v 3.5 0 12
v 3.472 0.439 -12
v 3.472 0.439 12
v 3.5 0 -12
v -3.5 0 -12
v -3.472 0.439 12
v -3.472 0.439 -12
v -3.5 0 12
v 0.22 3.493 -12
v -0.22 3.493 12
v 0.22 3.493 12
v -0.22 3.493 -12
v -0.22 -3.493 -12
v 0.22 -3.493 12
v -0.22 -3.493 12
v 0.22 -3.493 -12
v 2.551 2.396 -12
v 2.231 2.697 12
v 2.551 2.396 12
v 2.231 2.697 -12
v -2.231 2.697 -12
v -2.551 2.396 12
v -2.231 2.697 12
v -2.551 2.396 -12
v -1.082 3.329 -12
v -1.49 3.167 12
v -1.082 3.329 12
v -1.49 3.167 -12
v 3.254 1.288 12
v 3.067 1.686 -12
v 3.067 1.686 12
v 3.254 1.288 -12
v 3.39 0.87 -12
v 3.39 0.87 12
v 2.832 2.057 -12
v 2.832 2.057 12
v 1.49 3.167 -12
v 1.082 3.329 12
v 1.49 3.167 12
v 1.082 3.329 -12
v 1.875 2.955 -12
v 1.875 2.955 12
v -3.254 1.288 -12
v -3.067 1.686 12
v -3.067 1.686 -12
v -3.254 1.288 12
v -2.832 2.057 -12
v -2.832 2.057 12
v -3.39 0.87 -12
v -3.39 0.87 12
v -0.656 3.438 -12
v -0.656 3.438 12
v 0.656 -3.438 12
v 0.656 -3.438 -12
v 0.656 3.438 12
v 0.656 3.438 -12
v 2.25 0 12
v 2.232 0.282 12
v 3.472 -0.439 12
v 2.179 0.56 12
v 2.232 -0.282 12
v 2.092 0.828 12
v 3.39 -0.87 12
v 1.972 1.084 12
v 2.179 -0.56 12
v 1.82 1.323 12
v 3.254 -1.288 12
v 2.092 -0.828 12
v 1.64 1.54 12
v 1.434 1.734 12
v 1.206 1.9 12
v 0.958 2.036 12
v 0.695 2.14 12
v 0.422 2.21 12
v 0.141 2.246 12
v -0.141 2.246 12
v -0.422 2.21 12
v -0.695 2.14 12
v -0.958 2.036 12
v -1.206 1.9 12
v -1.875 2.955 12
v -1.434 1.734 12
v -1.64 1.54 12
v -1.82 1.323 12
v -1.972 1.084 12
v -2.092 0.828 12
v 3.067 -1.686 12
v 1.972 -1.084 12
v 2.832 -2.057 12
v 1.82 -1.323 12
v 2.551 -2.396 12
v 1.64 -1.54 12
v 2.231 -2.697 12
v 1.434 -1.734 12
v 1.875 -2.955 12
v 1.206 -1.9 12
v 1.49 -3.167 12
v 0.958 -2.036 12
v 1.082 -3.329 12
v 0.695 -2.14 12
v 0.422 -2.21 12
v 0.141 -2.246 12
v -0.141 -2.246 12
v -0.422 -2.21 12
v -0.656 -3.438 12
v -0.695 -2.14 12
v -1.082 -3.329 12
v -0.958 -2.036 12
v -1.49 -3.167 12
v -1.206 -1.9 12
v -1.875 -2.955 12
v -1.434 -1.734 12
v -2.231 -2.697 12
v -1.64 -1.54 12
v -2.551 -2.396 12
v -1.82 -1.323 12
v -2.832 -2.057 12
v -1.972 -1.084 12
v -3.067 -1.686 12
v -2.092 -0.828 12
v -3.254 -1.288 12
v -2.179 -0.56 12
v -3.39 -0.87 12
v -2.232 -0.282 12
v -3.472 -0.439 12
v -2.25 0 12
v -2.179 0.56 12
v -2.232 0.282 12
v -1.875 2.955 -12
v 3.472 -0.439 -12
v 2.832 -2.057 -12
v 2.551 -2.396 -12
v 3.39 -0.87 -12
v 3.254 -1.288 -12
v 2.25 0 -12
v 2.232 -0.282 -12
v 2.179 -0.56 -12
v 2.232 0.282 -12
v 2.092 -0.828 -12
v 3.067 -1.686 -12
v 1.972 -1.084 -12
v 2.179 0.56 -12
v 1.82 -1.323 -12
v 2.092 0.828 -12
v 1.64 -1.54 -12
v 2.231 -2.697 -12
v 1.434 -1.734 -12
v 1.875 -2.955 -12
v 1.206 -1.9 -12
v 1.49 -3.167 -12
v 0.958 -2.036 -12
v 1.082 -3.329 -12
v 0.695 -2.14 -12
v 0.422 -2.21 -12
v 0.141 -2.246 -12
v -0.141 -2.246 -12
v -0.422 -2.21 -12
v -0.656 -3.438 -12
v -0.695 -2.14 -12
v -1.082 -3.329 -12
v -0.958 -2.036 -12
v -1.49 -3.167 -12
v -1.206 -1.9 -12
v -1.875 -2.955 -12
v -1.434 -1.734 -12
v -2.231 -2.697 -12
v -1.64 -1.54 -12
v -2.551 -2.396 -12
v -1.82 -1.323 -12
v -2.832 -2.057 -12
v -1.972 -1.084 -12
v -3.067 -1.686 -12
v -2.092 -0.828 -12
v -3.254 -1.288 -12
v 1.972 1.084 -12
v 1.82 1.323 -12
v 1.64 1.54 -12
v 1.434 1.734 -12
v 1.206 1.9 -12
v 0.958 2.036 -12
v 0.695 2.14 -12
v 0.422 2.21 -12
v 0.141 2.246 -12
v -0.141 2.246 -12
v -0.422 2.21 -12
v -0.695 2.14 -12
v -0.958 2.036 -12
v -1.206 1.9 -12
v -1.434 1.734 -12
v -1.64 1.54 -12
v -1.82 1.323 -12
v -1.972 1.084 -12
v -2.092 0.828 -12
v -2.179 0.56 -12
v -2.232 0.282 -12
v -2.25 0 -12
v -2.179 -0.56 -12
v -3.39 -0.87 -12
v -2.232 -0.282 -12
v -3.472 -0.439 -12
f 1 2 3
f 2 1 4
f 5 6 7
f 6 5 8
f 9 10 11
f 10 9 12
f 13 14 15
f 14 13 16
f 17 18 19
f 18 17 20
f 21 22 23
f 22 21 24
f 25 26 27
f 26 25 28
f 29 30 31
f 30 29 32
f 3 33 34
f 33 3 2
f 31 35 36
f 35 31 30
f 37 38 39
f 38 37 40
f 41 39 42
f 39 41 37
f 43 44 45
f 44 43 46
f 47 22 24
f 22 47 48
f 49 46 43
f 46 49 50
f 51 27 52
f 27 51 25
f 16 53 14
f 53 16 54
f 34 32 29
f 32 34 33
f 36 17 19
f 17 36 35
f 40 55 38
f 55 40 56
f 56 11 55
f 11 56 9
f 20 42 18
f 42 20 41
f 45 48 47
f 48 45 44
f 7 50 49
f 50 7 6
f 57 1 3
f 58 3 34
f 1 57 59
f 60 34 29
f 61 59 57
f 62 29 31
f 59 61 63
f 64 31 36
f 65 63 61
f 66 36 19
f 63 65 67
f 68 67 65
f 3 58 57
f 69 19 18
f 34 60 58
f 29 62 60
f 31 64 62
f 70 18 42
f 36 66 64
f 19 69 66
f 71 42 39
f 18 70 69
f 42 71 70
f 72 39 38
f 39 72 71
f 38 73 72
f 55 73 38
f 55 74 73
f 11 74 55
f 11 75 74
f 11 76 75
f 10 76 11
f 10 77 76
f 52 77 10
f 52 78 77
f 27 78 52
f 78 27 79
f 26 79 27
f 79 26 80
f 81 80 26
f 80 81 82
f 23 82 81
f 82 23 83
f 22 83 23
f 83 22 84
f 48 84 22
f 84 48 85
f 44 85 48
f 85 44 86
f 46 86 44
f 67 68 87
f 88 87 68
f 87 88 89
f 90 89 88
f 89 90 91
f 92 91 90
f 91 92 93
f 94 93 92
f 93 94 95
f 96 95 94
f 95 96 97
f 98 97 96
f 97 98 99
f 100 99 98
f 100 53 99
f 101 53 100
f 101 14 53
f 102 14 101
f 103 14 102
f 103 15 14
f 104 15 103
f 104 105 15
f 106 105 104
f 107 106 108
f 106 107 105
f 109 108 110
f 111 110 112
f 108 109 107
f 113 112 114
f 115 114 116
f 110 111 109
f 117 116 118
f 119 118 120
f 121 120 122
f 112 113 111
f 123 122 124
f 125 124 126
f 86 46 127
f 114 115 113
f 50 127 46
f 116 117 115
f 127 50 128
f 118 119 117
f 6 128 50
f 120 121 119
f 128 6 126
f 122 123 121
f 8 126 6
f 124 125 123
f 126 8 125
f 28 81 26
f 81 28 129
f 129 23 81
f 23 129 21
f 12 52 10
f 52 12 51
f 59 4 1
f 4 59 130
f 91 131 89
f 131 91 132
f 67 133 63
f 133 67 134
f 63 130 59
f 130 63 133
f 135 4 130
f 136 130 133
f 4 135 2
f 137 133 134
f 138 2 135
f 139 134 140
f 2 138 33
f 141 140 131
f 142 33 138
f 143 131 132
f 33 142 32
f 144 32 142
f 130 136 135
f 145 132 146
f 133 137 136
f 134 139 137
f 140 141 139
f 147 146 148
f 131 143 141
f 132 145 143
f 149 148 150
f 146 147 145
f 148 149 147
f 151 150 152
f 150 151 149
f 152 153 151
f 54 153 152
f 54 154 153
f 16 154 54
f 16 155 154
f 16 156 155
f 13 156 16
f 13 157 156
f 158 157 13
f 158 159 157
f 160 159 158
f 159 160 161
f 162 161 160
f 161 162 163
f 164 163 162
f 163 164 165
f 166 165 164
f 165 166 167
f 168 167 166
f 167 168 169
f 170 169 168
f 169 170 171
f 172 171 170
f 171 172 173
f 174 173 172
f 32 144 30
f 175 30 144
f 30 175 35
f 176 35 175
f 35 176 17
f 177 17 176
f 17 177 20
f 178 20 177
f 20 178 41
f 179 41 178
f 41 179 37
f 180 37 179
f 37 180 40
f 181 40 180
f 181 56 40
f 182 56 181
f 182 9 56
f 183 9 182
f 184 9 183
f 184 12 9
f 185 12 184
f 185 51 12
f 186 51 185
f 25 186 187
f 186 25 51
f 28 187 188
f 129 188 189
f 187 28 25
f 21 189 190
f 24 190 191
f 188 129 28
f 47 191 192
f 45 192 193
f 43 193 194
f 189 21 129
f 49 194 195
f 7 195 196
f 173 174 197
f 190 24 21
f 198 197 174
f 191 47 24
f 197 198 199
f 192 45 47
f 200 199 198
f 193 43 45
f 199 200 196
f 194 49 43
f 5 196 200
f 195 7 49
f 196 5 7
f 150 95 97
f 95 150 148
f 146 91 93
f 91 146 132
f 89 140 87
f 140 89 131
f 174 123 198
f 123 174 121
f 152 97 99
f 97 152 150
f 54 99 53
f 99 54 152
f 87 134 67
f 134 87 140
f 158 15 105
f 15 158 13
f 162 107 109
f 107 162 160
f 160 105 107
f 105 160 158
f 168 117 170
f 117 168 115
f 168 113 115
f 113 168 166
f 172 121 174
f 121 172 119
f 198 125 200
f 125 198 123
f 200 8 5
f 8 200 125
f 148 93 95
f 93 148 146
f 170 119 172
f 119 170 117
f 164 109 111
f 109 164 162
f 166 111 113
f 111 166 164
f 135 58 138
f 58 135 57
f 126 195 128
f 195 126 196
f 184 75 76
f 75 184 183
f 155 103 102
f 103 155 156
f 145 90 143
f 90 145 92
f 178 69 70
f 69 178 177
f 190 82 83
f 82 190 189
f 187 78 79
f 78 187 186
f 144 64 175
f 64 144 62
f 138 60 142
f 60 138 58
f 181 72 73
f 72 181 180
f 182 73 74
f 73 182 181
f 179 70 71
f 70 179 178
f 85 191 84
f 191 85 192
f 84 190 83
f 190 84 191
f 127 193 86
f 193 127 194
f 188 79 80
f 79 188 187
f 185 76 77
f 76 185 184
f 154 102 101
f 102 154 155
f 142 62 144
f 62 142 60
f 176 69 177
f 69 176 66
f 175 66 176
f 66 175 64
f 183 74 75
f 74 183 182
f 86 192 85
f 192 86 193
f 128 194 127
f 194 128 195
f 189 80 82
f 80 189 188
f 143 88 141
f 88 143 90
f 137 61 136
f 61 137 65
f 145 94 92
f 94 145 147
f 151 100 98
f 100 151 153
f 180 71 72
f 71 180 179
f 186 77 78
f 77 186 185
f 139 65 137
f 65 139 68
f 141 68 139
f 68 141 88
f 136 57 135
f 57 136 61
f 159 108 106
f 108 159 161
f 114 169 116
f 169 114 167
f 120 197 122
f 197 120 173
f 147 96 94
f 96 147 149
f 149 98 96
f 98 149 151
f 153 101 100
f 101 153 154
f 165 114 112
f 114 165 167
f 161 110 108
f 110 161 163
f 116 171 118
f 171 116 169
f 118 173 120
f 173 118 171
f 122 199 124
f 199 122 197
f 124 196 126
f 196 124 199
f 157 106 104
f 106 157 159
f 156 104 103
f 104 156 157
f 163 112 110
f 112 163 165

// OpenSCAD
$fn = 50;


difference() {
	union() {
		translate(v = [0, 0, -12.0000000000]) {
			cylinder(h = 24, r = 3.5000000000);
		}
	}
	union() {
		translate(v = [0, 0, -100.0000000000]) {
			cylinder(h = 200, r = 2.2500000000);
		}
	}
}
